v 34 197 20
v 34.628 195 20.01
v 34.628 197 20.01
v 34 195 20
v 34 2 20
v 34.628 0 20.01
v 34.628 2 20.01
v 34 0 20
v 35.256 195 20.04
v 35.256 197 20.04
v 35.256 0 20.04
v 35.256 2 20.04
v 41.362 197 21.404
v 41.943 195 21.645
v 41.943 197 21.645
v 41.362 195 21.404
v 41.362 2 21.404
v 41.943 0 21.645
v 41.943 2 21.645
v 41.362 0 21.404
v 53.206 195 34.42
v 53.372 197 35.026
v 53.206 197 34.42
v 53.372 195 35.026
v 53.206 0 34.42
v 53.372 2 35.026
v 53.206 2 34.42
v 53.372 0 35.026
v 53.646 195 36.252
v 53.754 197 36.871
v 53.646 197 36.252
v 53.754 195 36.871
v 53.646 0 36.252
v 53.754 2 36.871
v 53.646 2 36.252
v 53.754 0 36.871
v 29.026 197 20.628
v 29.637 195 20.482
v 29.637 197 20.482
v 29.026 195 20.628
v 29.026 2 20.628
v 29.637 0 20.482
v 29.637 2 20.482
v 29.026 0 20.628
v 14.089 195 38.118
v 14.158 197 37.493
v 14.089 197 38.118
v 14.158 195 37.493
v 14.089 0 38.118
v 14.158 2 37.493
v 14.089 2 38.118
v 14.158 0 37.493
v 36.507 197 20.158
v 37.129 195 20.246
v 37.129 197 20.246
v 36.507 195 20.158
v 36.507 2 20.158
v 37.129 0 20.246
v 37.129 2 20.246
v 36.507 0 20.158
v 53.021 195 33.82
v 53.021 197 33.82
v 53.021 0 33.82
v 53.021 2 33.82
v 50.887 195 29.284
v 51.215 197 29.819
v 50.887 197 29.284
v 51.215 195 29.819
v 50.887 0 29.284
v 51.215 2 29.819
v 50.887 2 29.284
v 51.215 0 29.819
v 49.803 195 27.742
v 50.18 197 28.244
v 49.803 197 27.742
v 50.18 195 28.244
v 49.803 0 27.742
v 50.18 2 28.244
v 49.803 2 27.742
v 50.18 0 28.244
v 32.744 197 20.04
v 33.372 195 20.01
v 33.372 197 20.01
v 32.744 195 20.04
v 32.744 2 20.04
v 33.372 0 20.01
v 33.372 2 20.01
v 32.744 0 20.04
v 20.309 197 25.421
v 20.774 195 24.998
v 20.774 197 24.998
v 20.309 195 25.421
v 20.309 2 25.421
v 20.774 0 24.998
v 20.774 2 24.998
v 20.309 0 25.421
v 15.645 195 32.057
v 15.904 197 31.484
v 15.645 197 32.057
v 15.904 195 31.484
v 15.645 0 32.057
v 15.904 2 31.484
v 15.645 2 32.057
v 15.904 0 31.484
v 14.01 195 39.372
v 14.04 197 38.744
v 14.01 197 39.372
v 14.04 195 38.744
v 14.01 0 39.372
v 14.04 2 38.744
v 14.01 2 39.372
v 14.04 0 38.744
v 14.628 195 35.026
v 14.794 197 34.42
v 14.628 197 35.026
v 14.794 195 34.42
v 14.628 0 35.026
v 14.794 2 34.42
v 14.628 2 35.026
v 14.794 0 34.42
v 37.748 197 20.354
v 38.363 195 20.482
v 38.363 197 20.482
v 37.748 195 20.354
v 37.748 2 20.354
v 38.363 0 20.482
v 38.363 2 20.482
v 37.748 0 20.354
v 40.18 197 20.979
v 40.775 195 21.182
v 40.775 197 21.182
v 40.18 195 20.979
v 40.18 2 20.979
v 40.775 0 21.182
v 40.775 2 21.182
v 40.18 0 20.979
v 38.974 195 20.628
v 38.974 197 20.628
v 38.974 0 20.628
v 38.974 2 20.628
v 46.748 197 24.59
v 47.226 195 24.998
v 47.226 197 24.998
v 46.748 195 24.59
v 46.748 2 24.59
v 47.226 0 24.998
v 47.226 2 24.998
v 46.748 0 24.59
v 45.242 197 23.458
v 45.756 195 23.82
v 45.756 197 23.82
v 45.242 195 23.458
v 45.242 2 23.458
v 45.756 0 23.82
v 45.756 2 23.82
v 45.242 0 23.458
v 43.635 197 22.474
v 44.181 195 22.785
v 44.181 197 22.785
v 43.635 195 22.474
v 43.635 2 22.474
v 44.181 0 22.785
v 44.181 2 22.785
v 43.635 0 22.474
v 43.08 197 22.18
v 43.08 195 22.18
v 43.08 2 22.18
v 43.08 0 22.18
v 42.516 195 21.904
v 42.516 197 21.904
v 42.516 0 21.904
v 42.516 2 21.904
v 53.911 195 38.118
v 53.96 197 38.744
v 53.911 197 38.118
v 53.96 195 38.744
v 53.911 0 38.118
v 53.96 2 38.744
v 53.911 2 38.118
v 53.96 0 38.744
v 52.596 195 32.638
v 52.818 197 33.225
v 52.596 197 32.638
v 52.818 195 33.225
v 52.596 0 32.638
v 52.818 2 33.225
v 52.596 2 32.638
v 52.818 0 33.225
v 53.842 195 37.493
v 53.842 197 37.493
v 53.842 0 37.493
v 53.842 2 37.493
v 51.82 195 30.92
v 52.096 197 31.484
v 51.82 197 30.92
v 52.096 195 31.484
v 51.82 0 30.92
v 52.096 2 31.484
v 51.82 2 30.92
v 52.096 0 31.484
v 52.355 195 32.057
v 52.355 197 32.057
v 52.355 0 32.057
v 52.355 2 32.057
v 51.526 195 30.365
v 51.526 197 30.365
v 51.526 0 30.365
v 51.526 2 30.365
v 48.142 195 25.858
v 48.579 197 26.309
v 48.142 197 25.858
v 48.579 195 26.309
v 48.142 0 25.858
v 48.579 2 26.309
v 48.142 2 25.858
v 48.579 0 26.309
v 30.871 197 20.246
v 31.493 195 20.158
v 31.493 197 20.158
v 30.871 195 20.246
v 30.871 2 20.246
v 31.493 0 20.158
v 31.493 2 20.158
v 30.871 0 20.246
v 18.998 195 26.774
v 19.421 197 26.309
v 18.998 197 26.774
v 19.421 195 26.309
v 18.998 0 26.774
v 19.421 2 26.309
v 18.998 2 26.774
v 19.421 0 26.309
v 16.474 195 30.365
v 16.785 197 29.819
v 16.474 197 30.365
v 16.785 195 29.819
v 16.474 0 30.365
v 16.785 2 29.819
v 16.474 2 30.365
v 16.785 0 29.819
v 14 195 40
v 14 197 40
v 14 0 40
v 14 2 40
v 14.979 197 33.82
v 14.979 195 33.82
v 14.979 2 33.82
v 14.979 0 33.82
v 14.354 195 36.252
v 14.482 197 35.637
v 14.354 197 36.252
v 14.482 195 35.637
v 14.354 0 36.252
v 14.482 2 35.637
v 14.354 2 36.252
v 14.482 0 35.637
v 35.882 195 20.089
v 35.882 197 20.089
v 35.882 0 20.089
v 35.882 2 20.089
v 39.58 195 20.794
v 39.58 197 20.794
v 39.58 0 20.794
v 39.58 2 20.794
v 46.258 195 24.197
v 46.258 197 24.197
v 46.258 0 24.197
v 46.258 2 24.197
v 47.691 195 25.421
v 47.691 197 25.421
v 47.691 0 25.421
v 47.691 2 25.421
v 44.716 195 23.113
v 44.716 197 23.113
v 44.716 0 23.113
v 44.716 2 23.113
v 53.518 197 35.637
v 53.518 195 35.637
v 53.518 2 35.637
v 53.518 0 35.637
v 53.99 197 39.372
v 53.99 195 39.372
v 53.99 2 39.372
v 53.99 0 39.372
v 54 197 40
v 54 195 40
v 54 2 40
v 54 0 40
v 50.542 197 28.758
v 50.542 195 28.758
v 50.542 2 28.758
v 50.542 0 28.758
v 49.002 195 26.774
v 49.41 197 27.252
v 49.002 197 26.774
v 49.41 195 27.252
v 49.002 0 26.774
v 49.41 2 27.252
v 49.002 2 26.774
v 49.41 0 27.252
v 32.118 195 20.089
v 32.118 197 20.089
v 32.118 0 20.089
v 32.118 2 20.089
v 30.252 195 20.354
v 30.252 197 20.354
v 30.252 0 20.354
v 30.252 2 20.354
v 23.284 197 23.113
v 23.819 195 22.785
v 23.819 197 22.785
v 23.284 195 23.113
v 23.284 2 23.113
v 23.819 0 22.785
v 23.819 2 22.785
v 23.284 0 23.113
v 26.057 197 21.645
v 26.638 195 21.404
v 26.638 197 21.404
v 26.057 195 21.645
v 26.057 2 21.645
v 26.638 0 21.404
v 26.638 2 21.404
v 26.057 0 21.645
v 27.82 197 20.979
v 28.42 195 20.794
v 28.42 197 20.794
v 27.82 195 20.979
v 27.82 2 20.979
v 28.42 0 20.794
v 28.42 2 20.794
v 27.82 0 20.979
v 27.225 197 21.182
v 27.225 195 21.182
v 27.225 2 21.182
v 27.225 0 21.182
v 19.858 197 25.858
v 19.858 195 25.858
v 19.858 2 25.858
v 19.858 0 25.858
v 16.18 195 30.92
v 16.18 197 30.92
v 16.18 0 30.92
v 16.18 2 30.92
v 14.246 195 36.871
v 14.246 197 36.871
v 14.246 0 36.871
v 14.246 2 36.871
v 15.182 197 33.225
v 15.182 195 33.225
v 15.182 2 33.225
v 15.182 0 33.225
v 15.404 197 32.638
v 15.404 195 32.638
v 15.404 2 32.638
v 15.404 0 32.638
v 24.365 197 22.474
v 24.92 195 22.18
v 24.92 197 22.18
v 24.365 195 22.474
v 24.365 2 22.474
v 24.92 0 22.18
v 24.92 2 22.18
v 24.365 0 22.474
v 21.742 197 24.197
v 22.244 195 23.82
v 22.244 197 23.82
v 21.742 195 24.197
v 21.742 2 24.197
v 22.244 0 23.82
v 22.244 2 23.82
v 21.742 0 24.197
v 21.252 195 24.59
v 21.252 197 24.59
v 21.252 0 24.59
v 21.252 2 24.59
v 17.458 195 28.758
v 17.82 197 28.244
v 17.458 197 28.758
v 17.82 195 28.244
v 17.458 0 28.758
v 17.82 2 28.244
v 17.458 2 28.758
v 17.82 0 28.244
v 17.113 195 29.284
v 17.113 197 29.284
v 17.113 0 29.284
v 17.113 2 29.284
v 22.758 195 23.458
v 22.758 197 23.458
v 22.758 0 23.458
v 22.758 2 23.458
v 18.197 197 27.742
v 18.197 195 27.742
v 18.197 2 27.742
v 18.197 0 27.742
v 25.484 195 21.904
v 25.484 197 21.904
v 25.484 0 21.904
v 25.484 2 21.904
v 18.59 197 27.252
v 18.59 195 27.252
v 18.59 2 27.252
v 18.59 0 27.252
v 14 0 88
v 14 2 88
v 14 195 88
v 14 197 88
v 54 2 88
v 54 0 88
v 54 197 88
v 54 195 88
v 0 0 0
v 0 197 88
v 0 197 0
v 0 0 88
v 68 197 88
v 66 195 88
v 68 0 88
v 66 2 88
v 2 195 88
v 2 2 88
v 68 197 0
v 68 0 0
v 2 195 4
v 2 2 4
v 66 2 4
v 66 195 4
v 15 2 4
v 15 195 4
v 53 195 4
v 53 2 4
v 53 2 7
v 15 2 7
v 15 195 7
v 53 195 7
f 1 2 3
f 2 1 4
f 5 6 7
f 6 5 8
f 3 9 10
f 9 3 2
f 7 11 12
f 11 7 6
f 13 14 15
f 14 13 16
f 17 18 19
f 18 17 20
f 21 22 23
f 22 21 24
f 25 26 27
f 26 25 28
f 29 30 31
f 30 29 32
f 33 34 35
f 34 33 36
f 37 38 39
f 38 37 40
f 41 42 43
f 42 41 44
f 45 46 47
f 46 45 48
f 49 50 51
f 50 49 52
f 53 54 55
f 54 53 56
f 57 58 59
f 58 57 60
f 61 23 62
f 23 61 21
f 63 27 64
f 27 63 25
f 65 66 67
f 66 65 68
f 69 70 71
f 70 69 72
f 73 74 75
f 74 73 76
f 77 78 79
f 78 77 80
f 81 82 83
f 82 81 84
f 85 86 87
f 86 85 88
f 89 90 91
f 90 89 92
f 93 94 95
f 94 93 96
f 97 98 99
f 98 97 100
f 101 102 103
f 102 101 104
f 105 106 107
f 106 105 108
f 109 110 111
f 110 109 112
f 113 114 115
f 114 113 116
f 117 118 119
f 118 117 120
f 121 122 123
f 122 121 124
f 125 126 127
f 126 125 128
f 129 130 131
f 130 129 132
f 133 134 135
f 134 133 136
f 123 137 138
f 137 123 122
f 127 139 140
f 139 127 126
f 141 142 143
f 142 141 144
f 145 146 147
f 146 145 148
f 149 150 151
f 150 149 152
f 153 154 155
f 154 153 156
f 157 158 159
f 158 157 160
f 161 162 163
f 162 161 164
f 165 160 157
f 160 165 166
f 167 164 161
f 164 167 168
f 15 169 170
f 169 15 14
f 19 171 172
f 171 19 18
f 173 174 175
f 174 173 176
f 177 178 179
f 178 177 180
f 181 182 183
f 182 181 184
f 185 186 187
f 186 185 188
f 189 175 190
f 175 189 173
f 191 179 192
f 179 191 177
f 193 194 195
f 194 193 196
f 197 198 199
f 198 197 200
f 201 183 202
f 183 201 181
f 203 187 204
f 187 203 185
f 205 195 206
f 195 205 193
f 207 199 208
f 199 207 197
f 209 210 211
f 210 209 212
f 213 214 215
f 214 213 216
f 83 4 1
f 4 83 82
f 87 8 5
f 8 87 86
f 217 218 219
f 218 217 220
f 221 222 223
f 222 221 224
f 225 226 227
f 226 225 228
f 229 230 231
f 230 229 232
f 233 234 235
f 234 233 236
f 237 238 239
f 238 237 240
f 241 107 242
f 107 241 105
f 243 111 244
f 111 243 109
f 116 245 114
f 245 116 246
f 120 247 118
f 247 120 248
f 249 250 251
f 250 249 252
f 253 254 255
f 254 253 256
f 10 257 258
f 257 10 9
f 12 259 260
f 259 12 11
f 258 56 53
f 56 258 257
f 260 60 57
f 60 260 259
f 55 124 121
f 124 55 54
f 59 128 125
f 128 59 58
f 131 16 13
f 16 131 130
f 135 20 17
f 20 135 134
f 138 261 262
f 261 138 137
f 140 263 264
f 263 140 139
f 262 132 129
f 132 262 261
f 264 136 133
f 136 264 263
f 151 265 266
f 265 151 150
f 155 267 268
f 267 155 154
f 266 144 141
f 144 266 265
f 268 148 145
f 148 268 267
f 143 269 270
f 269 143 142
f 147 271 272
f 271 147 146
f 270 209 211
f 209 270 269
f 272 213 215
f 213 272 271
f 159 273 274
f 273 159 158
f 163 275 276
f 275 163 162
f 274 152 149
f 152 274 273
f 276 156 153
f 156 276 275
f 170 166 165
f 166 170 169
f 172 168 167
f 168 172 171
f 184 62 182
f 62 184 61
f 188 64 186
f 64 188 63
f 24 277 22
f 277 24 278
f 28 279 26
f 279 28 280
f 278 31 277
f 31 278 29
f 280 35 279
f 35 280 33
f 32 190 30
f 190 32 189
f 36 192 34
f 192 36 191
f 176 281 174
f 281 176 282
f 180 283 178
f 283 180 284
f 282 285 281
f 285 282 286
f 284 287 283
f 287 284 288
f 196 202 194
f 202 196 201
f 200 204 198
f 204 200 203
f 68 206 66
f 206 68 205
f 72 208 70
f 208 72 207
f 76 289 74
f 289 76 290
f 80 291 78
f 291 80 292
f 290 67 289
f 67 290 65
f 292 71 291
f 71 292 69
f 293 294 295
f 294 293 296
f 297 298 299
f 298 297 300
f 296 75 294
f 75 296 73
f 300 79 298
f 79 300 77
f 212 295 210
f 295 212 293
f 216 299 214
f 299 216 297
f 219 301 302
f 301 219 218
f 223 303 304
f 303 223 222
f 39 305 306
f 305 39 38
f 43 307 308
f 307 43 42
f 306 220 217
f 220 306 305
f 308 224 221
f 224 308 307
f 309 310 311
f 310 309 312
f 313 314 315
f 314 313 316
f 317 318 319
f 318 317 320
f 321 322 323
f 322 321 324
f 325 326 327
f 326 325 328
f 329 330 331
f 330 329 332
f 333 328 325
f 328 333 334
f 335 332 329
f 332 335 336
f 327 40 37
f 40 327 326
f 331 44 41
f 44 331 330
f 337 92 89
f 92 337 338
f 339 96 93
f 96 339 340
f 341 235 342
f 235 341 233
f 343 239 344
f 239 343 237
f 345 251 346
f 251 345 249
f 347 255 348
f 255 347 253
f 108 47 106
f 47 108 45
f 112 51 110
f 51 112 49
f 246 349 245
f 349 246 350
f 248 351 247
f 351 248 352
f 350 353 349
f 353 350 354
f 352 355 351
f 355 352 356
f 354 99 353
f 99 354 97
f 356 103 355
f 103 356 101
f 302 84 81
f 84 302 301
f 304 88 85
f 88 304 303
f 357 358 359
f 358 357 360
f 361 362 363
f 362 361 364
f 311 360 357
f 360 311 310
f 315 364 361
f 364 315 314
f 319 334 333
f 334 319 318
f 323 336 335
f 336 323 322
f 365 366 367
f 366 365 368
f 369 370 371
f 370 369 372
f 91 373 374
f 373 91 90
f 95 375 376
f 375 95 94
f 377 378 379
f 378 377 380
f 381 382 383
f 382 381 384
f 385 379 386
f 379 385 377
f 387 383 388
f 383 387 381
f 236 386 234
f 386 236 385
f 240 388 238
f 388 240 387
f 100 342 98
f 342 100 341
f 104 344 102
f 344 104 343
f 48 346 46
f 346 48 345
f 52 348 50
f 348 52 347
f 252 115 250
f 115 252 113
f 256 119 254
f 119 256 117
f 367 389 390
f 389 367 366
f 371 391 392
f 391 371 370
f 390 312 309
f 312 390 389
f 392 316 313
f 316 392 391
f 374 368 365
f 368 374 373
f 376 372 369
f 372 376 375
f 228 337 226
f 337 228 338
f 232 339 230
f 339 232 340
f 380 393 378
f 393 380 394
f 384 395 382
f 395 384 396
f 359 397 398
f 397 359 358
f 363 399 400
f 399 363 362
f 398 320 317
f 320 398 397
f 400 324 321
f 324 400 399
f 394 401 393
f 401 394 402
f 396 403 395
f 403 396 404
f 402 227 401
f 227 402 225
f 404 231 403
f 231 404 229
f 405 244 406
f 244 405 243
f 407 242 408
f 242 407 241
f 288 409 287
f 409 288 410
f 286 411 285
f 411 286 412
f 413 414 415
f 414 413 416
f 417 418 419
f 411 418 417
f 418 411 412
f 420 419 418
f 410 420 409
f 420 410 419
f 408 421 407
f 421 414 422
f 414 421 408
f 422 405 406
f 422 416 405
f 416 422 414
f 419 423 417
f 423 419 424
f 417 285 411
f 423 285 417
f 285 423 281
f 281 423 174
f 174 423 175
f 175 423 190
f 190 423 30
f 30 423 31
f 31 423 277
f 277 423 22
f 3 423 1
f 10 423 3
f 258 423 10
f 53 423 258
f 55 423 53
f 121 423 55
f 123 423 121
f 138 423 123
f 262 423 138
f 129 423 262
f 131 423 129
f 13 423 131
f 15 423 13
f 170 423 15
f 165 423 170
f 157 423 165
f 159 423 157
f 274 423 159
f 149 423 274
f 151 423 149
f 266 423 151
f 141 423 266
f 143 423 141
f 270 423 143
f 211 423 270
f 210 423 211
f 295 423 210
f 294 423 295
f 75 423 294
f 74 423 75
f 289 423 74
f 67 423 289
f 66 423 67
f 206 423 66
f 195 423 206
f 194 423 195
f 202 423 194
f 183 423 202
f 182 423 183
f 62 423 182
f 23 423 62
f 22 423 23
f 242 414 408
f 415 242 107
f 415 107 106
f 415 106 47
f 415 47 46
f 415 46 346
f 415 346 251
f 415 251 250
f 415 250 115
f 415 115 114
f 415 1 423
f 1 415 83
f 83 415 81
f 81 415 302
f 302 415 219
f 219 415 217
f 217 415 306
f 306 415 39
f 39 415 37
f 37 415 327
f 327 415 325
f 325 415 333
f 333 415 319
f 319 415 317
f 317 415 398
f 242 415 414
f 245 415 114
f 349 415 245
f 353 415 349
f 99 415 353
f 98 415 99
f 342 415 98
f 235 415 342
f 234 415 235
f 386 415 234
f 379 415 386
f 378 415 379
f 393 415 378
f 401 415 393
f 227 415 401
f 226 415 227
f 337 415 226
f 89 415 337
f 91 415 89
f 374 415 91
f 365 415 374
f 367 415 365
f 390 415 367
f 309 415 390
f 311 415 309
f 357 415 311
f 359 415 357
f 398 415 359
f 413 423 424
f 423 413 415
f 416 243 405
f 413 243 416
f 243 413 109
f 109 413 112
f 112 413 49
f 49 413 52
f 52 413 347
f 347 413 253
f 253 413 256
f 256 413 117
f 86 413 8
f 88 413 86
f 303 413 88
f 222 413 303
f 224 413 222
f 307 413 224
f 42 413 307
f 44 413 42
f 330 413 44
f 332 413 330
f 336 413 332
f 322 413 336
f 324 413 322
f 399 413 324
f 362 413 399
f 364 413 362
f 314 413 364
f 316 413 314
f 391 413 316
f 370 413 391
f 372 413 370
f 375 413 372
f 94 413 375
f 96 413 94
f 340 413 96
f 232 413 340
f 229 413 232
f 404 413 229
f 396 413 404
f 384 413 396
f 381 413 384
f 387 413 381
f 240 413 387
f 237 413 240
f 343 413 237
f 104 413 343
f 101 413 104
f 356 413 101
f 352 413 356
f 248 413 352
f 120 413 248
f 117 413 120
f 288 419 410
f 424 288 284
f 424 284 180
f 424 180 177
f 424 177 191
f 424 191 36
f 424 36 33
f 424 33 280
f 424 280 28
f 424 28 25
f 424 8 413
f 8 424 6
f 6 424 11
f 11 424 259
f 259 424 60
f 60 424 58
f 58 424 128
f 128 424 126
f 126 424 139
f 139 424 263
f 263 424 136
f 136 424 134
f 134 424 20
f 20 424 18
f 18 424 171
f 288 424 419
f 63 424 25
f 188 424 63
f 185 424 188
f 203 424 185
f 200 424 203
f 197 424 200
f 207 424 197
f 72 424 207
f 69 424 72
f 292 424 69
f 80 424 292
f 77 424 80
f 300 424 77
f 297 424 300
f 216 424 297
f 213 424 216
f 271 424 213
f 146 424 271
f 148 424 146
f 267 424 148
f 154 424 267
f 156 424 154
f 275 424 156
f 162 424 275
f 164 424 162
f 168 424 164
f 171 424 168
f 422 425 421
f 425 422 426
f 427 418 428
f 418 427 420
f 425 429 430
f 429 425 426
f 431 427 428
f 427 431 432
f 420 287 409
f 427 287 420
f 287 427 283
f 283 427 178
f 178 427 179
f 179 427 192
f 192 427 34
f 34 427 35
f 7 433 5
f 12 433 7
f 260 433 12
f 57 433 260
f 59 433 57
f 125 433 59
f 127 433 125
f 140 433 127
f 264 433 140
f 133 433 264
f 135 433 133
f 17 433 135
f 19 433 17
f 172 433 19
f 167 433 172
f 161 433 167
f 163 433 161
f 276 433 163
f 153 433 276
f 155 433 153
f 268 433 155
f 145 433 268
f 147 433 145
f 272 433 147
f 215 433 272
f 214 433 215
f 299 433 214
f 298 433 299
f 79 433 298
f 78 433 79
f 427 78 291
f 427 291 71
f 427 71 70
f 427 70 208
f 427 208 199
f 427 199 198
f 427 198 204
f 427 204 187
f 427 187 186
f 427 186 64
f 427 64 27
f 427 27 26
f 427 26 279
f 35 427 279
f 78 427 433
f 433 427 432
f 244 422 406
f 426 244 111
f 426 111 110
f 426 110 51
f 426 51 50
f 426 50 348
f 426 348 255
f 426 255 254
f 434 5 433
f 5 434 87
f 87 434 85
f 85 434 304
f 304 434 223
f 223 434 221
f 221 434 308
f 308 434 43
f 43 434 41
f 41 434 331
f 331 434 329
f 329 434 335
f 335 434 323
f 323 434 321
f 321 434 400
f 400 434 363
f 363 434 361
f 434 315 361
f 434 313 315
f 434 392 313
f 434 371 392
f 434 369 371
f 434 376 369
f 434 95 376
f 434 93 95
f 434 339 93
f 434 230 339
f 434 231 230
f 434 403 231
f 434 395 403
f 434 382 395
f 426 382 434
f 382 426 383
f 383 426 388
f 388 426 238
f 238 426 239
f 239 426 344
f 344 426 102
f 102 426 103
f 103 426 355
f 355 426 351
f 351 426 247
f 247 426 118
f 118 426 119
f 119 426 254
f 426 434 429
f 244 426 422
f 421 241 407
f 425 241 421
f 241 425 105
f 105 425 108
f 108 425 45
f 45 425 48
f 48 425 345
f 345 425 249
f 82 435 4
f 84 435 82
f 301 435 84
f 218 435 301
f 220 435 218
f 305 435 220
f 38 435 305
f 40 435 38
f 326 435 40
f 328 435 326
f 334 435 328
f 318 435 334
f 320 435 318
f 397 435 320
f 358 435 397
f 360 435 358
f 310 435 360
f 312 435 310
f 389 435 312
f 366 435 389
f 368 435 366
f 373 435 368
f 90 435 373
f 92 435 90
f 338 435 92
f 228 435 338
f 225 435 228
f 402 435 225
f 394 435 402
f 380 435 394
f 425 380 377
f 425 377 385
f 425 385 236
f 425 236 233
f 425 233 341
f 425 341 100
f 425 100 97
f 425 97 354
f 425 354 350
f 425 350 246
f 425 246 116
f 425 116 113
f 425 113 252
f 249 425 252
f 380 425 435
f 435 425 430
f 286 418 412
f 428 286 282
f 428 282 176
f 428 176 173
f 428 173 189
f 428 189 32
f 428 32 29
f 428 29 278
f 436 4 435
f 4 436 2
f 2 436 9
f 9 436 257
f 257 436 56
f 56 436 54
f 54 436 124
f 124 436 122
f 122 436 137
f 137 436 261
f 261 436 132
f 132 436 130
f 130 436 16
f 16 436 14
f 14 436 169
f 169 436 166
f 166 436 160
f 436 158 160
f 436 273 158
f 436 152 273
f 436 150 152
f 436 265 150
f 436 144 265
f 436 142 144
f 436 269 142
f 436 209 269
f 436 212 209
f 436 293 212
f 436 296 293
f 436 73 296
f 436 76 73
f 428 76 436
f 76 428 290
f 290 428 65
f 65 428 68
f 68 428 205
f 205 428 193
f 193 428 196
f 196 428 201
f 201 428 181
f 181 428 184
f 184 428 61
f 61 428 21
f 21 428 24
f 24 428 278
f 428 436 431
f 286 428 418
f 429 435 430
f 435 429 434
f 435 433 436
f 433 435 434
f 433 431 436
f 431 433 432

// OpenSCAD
$fn=200;

THICK = 2;

CARD_L = 193;
CARD_W = 64;
CARD_STACK = 84;

BOX_W = CARD_W + (THICK * 2);
BOX_L = CARD_L + (THICK * 2);
BOX_H = CARD_STACK + (THICK * 2);

SMALL_DECK_STACK = 7;

translate([15, 0, 0])
    cube(size = [BOX_W - 30, BOX_L, 7]);


difference() {
    cube(size = [BOX_W, BOX_L, BOX_H]);

    translate([
        THICK, 
        THICK, 
        BOX_H - CARD_STACK]) {
            
        cube(size = [
            CARD_W,
            CARD_L,
            CARD_STACK + 1]);
    }

    // for ( i = [9 : 2 : CARD_L - 6] ){
    //     translate([1, i, 60])
    //         cube(size = [BOX_W - 2, 1, 40]);
    // }
    
    gap();
}

module gap() {
    translate([
        BOX_W / 2,
        490,
        40]) {

        rotate([90, 90, 0]) {
            cylinder(
                h = 1000,
                r = 20);
        }
    }

    translate([
        (CARD_W / 2) - 18, 
        -50, 
        40]) {
            
        cube(size = [
            40,
            550,
            50]);
    }   
}
